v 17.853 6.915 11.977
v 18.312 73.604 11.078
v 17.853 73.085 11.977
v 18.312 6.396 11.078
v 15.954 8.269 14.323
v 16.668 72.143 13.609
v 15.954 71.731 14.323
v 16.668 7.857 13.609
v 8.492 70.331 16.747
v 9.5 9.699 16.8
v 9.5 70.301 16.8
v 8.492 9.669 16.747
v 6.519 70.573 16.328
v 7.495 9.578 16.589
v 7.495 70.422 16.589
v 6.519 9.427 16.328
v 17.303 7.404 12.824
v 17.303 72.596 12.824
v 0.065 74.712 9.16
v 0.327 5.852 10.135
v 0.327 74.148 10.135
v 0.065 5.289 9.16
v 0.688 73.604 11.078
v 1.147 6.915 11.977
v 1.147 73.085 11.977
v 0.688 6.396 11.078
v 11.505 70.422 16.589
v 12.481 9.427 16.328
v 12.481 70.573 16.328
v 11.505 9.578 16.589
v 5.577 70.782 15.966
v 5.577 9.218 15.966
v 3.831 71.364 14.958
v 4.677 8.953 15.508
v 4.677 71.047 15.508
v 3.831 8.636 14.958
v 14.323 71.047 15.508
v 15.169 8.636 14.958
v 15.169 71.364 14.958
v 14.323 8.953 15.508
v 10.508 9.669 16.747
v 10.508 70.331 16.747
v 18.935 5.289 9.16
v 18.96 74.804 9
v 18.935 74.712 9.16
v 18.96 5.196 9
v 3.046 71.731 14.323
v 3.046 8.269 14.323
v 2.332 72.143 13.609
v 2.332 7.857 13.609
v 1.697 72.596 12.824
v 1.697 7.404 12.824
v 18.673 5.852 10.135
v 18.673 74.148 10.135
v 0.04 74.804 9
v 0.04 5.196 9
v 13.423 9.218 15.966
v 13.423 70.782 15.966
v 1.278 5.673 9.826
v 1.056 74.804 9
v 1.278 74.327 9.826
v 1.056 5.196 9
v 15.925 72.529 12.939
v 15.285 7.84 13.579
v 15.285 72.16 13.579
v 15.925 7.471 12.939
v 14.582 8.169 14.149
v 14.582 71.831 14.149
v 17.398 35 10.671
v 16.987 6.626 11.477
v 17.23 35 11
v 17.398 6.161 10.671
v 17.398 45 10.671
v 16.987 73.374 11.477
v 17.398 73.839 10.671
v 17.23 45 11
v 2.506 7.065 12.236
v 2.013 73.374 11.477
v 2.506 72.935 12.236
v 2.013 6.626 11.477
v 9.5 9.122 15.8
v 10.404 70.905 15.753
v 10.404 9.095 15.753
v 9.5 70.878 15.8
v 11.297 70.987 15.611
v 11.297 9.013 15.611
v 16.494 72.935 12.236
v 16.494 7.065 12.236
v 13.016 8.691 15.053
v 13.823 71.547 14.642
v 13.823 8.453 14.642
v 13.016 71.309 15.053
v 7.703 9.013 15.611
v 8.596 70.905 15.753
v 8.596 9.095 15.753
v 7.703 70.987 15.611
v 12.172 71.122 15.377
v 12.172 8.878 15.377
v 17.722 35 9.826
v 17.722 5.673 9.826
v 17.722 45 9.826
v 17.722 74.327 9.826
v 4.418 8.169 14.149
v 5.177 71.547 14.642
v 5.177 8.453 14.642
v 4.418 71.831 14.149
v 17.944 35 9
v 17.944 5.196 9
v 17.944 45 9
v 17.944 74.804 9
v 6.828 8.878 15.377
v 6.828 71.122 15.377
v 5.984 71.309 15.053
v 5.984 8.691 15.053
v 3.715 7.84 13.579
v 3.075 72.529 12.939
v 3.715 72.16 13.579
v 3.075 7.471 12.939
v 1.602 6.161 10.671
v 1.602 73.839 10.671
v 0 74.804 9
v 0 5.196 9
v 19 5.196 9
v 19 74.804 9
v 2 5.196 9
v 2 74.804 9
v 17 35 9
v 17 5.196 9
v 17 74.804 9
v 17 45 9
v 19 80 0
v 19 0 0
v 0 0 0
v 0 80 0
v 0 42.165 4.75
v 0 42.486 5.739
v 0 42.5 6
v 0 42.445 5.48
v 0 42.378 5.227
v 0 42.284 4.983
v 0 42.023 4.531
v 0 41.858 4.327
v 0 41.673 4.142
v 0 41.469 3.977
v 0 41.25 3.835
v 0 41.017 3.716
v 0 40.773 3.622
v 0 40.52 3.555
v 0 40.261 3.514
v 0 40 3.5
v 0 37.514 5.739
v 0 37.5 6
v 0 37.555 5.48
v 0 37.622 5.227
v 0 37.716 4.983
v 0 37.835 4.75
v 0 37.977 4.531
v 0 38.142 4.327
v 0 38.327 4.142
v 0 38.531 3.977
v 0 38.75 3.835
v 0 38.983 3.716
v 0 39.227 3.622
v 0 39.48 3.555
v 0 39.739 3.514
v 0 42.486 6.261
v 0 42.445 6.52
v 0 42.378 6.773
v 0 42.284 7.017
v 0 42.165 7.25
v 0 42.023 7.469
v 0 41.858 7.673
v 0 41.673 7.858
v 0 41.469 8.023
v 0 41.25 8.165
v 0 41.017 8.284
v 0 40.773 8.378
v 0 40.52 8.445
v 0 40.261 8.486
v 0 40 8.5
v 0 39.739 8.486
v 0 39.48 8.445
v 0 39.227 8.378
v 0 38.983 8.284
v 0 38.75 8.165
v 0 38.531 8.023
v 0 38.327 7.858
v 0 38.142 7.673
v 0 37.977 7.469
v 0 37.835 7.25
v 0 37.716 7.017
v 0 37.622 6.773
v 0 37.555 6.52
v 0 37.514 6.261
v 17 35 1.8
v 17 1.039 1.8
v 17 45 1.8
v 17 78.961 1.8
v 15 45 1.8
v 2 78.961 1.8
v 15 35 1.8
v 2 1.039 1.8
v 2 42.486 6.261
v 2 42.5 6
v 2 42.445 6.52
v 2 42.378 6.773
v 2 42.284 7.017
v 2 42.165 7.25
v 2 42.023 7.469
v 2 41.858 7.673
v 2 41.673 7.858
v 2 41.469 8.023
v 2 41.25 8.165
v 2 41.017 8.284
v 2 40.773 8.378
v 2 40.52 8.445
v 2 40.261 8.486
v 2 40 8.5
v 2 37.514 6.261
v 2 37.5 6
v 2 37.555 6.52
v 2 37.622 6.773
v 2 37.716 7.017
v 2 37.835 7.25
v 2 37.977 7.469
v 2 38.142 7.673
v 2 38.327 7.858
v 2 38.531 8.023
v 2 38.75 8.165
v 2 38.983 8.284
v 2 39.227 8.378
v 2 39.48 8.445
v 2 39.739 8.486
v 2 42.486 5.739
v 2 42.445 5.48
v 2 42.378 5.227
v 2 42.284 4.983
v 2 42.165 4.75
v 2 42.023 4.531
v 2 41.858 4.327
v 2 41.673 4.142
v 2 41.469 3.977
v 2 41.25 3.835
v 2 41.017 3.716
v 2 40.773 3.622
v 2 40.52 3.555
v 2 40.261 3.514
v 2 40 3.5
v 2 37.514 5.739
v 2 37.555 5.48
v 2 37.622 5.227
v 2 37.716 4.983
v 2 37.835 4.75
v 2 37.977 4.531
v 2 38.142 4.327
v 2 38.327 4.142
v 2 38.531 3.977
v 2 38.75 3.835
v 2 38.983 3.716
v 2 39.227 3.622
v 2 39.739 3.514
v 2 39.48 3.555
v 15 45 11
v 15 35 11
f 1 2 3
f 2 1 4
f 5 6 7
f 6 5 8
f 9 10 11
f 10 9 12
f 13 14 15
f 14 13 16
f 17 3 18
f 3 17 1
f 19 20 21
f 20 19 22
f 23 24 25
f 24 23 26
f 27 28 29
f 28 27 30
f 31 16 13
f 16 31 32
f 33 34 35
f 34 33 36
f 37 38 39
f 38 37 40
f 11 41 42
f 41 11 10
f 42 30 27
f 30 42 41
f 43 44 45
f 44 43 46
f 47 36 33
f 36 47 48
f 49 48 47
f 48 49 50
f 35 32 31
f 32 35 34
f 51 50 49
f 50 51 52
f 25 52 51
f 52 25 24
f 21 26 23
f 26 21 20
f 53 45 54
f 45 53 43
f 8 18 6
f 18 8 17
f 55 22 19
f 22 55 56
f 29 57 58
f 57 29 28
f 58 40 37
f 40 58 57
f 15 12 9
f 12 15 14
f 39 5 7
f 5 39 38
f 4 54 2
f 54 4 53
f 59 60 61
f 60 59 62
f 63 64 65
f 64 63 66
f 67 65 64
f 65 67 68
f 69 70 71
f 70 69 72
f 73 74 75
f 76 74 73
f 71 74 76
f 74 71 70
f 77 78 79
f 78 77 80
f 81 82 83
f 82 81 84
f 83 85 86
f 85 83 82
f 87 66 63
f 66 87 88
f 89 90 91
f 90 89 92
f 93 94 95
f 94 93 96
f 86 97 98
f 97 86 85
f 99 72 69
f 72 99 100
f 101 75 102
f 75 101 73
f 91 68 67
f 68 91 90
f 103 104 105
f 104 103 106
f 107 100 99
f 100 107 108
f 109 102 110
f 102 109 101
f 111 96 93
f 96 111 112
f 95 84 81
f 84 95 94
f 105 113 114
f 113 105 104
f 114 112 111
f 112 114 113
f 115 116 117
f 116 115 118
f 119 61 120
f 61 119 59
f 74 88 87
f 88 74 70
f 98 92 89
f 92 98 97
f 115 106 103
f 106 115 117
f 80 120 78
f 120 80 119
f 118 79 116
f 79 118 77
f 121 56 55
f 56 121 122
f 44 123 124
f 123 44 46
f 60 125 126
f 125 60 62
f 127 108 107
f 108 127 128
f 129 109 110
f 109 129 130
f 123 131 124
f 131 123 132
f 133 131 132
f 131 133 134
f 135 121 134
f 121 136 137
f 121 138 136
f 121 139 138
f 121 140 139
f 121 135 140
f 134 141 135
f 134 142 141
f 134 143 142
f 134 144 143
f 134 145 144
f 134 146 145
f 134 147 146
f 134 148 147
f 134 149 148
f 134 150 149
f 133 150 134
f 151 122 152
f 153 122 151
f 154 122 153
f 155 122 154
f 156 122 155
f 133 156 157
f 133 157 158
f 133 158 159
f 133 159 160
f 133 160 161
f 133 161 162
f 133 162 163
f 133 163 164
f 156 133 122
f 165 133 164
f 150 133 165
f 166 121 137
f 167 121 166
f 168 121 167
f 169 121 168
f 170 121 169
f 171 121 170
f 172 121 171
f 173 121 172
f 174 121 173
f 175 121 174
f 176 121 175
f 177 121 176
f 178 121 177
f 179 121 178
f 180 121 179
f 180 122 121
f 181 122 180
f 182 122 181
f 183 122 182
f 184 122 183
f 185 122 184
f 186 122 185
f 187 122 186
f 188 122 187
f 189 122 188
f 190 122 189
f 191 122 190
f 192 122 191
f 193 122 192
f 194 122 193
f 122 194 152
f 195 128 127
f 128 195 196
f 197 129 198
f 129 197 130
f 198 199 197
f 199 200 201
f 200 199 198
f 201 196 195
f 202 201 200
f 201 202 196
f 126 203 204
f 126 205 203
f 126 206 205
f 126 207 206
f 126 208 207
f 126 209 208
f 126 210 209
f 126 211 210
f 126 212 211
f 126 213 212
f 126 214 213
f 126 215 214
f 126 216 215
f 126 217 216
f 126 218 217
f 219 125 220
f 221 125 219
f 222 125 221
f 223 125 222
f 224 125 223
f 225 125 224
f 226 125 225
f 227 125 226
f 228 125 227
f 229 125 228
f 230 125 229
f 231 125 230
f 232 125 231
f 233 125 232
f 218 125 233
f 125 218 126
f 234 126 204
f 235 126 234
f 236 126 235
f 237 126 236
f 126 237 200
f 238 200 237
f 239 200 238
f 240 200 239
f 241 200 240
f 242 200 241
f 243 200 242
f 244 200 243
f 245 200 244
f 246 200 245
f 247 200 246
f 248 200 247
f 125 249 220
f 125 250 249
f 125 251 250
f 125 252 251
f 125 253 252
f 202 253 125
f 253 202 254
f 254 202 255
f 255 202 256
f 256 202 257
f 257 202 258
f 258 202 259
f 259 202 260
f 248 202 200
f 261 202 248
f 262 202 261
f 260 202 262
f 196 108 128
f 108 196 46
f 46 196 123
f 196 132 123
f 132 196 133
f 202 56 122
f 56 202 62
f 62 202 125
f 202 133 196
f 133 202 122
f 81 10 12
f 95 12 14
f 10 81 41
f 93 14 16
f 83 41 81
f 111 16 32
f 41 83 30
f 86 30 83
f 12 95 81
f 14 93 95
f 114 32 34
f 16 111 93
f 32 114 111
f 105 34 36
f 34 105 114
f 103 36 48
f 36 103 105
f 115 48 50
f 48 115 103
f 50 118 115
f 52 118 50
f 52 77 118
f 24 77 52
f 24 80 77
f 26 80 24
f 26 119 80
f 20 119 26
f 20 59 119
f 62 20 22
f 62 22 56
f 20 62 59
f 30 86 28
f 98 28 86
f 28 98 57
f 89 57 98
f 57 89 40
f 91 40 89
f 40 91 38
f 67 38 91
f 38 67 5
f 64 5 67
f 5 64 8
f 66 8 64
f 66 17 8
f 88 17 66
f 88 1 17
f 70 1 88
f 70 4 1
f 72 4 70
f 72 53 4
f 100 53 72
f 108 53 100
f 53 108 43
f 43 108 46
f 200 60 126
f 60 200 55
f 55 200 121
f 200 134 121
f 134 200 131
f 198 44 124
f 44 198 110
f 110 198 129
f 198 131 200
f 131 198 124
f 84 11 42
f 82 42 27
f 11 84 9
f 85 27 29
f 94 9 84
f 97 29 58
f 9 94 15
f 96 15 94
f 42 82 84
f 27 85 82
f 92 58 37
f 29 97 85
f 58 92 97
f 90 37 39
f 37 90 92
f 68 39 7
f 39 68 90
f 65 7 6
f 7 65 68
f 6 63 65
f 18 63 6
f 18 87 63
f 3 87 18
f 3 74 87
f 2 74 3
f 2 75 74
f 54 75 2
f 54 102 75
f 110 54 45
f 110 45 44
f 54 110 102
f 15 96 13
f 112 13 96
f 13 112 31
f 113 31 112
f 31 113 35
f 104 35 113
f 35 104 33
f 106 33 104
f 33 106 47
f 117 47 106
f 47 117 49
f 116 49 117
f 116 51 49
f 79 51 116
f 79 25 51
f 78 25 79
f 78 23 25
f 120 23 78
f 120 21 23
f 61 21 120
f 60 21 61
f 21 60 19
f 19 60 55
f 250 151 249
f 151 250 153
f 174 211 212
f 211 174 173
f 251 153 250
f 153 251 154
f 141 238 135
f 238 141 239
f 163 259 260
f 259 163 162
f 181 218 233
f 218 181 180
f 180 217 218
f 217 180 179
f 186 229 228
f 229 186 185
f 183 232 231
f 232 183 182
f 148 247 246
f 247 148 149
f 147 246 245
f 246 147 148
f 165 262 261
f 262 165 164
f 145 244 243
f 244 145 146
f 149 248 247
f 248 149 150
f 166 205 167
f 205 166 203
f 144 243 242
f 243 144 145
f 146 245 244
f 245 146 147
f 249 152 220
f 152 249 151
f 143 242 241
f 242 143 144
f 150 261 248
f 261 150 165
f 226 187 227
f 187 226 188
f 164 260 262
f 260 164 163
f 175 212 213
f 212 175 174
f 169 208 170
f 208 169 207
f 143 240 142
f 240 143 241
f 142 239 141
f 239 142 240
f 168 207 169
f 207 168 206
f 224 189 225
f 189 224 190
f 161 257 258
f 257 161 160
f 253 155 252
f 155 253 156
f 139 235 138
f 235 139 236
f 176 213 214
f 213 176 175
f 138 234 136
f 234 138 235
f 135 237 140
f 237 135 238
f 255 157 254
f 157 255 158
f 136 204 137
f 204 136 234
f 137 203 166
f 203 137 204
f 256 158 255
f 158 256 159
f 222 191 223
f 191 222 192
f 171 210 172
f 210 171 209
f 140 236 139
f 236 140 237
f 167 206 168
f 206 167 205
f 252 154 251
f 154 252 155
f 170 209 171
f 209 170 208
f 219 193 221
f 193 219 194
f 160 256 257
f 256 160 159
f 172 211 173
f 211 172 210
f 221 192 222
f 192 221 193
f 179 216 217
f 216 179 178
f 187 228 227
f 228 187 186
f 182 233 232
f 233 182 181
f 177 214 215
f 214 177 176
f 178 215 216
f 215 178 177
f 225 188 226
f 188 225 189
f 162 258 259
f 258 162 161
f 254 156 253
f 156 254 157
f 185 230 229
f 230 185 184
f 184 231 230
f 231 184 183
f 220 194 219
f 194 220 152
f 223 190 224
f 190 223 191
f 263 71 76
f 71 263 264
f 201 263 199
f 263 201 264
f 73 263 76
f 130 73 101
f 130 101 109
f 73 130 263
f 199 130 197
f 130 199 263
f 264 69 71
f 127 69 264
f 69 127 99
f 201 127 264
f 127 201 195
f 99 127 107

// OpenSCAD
$fn=60;
length = 80;
outer_width = 19;
wire_hole_diameter=5;
top_radius = 8.64545;


difference(){
    union(){ // mushroom shaped tube
        difference(){ // U profile
            cube([outer_width, length, 9]);
            translate([2, 0, 1.8]) cube([15, length, 9]);
        }
        translate([0, 0, 9]) difference(){ // half tube top
            translate([8.4 + 1.1, 0, 6.6 - top_radius + 0.2]) 
            rotate([270, 0, 0]){ // full tube
                difference(){
                    cylinder(h=length, r=top_radius+1);
                    cylinder(h=length, r=top_radius);
                }
            }
            // cut bottom part
            translate([-20, 0, -20]) cube([40, length, 20]);
        }
    }
    // slated ends
    rotate([-30, 0, 0]) translate([0, -30, 0]) cube([outer_width, 30, 50]);
    translate([0, length, 0]) rotate([30, 0, 0]) cube([outer_width, 30, 50]);
    // wire hole in the center
    translate([0, length/2, 6]) rotate([0, 90, 0]) cylinder(h=10, d=wire_hole_diameter);
}
// block for middle
translate([15, length/2-5, 0]) cube([3, 10, 11]);
